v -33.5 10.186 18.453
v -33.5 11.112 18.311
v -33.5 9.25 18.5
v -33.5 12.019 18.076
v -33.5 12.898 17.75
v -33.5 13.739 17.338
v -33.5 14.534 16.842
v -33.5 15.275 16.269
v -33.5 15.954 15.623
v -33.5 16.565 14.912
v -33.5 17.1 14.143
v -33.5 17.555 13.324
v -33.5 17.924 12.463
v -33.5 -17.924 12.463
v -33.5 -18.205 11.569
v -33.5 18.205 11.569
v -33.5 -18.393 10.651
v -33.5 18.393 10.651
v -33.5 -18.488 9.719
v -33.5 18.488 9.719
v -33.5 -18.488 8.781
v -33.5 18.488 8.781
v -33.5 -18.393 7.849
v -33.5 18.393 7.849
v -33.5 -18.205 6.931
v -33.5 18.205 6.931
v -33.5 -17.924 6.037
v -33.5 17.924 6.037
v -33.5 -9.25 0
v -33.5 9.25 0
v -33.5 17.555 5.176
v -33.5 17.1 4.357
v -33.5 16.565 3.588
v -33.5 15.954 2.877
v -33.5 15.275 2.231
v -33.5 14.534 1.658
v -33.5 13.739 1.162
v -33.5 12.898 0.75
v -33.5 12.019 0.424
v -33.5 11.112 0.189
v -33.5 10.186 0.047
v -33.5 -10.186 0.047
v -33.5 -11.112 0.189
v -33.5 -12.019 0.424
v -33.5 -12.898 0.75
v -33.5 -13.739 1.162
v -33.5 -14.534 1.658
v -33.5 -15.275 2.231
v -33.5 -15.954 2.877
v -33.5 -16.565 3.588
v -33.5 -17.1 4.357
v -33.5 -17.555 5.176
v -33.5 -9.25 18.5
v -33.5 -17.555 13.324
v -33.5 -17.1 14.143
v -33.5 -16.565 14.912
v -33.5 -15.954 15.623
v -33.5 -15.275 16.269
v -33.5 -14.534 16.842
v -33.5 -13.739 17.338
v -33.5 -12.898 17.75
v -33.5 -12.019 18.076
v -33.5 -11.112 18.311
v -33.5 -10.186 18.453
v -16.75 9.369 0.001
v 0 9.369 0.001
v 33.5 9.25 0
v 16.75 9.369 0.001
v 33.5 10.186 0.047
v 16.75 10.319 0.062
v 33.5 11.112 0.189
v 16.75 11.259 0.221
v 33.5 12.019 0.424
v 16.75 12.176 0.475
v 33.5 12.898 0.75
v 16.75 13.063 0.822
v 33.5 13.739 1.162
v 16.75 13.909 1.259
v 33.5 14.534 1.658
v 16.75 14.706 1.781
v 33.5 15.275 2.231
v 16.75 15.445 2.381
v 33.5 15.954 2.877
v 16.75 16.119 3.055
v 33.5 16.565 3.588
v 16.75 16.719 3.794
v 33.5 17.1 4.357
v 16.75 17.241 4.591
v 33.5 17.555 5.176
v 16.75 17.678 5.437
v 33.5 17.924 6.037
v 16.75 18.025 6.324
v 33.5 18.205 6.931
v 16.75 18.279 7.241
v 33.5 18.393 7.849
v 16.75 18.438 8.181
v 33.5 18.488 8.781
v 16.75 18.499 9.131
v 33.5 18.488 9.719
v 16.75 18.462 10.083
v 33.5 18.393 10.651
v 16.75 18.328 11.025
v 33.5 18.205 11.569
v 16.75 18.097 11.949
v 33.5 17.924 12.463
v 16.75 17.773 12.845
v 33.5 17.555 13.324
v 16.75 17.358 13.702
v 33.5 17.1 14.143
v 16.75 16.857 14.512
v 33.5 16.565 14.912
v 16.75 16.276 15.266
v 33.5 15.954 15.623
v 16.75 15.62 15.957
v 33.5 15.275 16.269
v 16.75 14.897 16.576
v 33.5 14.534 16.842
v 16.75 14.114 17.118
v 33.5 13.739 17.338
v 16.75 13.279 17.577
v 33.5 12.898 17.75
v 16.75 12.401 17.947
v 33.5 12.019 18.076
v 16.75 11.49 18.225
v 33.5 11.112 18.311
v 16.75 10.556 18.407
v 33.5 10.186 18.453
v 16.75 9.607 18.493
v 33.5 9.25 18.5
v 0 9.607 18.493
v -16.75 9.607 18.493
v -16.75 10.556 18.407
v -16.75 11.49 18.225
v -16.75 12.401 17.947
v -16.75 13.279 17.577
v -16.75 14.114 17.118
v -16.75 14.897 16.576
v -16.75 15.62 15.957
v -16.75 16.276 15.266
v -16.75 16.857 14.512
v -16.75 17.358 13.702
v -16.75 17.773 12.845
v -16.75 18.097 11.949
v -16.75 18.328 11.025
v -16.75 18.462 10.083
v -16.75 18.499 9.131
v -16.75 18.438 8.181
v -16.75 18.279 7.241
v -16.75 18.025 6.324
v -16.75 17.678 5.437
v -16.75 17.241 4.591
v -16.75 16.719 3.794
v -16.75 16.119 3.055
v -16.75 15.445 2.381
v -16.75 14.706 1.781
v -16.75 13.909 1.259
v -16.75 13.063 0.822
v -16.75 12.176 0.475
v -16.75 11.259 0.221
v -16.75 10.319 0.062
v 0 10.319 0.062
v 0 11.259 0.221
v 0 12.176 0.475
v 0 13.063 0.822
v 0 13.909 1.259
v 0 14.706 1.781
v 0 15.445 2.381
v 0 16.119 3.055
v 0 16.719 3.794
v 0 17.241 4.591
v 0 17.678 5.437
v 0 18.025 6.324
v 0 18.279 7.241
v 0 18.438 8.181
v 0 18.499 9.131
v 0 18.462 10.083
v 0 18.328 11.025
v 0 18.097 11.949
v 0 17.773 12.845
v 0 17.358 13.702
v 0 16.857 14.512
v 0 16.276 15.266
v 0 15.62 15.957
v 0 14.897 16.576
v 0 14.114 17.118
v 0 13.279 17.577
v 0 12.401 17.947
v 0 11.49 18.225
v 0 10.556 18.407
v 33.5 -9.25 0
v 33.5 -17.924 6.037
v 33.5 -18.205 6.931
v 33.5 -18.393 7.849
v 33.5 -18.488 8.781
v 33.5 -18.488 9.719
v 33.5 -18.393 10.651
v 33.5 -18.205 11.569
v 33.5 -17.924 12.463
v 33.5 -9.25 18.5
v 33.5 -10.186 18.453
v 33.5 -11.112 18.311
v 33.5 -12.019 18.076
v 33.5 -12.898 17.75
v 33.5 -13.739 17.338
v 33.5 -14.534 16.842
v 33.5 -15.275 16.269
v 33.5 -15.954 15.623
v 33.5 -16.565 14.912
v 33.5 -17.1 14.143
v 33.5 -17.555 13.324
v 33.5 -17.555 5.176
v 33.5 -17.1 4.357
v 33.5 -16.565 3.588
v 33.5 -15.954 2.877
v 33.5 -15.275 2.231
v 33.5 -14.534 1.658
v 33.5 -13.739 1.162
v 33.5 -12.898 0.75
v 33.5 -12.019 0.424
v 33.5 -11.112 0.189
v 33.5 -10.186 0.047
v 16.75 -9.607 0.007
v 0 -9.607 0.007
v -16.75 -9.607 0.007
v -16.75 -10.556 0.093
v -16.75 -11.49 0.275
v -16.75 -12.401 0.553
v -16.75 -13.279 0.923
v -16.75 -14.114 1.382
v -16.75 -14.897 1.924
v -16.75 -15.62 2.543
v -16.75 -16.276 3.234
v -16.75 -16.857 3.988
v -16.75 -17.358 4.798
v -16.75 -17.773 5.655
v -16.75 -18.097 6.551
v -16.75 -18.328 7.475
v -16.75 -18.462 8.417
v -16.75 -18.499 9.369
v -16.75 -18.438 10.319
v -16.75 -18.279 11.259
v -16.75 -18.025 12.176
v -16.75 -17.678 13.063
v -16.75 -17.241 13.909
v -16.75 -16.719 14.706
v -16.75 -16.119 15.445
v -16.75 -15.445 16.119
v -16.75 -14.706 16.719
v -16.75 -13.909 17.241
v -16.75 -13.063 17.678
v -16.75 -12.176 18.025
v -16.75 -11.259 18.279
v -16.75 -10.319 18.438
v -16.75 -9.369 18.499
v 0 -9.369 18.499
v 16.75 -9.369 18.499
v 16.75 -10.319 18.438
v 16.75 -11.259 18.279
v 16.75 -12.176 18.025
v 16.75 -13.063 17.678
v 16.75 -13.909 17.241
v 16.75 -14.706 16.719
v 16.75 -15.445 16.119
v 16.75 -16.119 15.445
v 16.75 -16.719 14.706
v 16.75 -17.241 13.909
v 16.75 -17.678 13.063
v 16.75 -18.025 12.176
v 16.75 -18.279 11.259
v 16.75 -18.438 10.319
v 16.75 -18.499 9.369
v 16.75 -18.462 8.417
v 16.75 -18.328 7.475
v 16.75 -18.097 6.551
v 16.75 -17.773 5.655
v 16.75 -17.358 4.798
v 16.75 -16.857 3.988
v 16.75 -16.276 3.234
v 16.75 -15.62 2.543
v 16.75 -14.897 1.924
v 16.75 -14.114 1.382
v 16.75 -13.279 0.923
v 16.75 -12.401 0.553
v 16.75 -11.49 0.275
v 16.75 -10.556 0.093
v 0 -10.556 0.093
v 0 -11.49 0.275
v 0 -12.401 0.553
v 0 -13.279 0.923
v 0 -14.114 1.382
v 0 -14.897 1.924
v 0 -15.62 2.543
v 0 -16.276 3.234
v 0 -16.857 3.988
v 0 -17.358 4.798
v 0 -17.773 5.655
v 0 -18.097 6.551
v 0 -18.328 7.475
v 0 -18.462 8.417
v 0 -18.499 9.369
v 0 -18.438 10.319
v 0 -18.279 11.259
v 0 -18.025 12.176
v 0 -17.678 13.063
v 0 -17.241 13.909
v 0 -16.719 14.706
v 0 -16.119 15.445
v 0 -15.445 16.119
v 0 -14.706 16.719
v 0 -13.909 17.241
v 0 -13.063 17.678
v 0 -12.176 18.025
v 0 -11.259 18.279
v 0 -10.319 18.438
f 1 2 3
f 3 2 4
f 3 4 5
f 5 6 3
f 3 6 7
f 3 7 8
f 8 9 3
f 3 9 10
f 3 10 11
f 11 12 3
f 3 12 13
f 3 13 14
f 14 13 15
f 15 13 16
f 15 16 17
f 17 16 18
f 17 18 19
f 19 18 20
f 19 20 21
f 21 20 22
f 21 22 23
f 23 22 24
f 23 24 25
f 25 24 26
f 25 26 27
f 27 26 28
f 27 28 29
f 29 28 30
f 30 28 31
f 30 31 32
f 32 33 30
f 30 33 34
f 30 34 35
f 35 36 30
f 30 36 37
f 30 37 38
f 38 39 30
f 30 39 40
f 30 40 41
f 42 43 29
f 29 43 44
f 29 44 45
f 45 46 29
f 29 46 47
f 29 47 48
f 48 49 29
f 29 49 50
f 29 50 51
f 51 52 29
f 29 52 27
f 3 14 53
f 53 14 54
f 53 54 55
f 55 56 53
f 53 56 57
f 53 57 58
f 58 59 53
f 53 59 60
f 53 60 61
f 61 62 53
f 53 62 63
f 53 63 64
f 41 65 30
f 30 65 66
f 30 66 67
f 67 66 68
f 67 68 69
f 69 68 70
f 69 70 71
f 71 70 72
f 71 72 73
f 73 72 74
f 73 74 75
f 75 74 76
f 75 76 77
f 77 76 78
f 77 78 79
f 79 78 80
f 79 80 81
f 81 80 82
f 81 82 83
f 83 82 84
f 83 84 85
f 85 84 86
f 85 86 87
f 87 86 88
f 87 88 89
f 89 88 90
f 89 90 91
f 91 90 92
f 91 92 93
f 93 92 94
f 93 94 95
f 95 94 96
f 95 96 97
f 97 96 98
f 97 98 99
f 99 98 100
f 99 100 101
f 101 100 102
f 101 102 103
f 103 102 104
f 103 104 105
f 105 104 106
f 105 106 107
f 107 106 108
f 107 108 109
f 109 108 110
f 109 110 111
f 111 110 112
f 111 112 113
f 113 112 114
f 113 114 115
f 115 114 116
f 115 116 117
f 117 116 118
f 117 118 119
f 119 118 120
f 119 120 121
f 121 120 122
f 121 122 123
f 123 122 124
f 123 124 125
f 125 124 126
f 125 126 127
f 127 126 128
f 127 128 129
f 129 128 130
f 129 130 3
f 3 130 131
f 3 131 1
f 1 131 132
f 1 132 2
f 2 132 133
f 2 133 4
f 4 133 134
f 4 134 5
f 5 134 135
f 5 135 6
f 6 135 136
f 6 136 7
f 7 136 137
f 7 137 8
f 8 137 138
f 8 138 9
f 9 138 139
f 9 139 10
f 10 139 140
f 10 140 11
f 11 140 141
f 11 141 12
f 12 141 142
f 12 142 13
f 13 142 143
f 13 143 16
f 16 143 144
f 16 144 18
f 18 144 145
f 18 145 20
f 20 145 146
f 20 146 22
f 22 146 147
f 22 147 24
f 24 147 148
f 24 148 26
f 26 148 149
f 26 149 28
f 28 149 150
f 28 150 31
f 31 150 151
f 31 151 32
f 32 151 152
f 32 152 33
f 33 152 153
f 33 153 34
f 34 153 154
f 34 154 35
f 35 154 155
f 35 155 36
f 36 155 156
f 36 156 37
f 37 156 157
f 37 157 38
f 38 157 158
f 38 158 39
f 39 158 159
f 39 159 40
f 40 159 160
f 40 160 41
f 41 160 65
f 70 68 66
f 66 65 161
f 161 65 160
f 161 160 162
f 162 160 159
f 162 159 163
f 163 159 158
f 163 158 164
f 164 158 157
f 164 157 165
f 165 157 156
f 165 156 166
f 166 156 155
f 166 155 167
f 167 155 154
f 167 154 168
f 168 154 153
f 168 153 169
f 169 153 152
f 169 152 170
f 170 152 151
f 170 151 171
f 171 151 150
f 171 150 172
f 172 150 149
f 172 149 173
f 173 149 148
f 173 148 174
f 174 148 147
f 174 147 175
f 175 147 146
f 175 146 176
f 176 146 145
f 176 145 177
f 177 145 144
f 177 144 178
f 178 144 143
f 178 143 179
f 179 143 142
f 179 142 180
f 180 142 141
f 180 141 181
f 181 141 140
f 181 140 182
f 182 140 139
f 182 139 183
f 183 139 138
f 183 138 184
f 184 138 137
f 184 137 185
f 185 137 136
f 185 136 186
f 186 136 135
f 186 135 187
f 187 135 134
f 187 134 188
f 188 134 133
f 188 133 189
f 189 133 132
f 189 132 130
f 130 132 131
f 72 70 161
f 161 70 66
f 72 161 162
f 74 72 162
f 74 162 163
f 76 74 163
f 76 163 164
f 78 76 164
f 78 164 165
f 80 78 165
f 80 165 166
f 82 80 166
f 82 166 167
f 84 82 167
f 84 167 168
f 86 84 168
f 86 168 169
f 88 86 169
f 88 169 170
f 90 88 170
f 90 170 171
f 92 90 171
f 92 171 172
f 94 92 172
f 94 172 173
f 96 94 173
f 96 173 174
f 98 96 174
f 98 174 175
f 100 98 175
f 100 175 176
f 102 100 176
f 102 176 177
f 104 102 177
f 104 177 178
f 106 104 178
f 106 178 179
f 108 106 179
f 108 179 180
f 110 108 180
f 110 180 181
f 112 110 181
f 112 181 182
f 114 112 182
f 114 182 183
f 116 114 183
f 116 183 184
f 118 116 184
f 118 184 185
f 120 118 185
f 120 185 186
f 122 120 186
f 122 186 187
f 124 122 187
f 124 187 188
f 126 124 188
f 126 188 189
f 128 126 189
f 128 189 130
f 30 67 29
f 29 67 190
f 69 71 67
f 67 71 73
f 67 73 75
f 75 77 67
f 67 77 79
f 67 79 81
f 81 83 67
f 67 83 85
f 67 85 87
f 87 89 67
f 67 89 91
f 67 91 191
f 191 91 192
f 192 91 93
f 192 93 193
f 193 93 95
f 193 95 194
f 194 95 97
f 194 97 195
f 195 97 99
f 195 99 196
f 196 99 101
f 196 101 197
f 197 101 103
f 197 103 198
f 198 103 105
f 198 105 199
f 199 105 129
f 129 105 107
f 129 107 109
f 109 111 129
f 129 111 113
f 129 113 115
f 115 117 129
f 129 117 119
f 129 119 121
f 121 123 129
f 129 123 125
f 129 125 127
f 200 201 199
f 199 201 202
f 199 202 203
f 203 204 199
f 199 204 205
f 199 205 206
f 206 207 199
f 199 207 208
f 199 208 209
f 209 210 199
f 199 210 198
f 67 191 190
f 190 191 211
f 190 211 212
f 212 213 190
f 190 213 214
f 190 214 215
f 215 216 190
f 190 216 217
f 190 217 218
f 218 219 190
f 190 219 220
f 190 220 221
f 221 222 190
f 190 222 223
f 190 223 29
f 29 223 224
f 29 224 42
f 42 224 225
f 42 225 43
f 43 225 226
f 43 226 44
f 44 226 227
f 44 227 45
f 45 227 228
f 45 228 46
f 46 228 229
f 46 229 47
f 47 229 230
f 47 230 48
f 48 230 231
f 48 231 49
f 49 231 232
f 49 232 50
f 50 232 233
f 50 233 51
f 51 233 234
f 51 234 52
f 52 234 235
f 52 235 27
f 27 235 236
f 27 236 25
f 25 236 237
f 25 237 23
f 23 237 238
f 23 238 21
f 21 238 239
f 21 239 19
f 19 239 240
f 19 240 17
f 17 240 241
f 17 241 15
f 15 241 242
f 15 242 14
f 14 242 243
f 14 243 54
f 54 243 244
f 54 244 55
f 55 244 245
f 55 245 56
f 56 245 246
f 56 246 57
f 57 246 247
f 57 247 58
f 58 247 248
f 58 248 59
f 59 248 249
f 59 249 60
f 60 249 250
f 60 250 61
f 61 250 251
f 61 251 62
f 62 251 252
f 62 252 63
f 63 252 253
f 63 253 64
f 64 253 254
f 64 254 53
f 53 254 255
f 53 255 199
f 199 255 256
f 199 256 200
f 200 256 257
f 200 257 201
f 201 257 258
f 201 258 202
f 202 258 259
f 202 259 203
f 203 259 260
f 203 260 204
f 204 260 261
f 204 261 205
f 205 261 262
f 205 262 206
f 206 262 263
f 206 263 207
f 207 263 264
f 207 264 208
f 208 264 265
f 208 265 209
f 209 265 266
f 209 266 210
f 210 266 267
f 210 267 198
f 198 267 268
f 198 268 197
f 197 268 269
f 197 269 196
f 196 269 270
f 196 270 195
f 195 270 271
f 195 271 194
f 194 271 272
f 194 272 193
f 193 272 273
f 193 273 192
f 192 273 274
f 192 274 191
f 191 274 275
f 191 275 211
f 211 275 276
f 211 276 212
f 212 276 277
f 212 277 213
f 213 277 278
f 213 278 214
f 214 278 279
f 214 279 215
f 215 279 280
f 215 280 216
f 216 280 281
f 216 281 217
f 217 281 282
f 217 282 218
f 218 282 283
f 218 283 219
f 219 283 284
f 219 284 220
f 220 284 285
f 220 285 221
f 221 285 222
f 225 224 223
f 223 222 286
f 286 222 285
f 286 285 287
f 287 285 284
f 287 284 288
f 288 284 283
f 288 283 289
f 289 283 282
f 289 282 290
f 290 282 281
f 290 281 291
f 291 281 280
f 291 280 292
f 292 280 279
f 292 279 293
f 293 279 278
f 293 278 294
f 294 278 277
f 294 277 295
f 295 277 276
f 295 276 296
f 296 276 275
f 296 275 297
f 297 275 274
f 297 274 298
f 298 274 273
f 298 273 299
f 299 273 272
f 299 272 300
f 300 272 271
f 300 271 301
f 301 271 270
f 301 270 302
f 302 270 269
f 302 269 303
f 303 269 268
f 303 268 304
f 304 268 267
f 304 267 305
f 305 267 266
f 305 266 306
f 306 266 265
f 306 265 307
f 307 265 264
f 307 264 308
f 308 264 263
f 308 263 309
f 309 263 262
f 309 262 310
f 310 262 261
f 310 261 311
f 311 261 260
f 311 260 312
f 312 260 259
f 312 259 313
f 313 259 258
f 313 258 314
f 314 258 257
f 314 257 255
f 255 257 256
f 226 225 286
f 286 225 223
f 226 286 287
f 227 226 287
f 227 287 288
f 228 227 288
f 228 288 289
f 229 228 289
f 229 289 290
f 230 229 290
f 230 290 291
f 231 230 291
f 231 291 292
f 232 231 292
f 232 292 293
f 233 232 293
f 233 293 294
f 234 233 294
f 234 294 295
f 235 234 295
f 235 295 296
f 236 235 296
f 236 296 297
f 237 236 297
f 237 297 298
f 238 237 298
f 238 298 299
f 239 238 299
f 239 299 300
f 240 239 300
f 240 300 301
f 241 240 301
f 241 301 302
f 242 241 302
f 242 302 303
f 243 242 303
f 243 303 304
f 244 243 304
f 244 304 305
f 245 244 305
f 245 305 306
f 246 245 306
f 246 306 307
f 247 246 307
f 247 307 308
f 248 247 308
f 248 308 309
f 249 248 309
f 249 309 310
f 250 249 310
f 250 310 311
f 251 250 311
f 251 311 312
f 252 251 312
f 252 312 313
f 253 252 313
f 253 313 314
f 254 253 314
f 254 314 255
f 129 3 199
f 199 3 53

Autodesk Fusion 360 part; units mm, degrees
sketch "Sketch1" plane through (0, 0, 0) normal (0, 0, 1) x (1, 0, 0) in component "LiPo_Bat_4400_Dual_Cylinder"
  line L0 (33.5, 18.5) -> (-33.5, 18.5)
  line L1 (-33.5, 18.5) -> (-33.5, -18.5)
  line L2 (-33.5, -18.5) -> (33.5, -18.5)
  line L3 (33.5, -18.5) -> (33.5, 18.5)
  line L4 (33.5, 18.5) -> (-33.5, -18.5) construction
  line L5 (-33.5, 18.5) -> (33.5, -18.5) construction
  dimension "d1" = 67
  dimension "d2" = 37
extrude "Extrude1" add sketch "Sketch1" along normal blind 18.5 in component "LiPo_Bat_4400_Dual_Cylinder"
fillet "Fillet1" radius 9.25 4 edges at (0, -18.5, 18.5) (0, -18.5, 0) (0, 18.5, 0) (0, 18.5, 18.5) in component "LiPo_Bat_4400_Dual_Cylinder"
component "LiPo_Bat_4400_Dual_Cylinder" placed x (1, 0, 0) y (0, 1, 0) z (0, 0, 1) at (0, 0, 0)
